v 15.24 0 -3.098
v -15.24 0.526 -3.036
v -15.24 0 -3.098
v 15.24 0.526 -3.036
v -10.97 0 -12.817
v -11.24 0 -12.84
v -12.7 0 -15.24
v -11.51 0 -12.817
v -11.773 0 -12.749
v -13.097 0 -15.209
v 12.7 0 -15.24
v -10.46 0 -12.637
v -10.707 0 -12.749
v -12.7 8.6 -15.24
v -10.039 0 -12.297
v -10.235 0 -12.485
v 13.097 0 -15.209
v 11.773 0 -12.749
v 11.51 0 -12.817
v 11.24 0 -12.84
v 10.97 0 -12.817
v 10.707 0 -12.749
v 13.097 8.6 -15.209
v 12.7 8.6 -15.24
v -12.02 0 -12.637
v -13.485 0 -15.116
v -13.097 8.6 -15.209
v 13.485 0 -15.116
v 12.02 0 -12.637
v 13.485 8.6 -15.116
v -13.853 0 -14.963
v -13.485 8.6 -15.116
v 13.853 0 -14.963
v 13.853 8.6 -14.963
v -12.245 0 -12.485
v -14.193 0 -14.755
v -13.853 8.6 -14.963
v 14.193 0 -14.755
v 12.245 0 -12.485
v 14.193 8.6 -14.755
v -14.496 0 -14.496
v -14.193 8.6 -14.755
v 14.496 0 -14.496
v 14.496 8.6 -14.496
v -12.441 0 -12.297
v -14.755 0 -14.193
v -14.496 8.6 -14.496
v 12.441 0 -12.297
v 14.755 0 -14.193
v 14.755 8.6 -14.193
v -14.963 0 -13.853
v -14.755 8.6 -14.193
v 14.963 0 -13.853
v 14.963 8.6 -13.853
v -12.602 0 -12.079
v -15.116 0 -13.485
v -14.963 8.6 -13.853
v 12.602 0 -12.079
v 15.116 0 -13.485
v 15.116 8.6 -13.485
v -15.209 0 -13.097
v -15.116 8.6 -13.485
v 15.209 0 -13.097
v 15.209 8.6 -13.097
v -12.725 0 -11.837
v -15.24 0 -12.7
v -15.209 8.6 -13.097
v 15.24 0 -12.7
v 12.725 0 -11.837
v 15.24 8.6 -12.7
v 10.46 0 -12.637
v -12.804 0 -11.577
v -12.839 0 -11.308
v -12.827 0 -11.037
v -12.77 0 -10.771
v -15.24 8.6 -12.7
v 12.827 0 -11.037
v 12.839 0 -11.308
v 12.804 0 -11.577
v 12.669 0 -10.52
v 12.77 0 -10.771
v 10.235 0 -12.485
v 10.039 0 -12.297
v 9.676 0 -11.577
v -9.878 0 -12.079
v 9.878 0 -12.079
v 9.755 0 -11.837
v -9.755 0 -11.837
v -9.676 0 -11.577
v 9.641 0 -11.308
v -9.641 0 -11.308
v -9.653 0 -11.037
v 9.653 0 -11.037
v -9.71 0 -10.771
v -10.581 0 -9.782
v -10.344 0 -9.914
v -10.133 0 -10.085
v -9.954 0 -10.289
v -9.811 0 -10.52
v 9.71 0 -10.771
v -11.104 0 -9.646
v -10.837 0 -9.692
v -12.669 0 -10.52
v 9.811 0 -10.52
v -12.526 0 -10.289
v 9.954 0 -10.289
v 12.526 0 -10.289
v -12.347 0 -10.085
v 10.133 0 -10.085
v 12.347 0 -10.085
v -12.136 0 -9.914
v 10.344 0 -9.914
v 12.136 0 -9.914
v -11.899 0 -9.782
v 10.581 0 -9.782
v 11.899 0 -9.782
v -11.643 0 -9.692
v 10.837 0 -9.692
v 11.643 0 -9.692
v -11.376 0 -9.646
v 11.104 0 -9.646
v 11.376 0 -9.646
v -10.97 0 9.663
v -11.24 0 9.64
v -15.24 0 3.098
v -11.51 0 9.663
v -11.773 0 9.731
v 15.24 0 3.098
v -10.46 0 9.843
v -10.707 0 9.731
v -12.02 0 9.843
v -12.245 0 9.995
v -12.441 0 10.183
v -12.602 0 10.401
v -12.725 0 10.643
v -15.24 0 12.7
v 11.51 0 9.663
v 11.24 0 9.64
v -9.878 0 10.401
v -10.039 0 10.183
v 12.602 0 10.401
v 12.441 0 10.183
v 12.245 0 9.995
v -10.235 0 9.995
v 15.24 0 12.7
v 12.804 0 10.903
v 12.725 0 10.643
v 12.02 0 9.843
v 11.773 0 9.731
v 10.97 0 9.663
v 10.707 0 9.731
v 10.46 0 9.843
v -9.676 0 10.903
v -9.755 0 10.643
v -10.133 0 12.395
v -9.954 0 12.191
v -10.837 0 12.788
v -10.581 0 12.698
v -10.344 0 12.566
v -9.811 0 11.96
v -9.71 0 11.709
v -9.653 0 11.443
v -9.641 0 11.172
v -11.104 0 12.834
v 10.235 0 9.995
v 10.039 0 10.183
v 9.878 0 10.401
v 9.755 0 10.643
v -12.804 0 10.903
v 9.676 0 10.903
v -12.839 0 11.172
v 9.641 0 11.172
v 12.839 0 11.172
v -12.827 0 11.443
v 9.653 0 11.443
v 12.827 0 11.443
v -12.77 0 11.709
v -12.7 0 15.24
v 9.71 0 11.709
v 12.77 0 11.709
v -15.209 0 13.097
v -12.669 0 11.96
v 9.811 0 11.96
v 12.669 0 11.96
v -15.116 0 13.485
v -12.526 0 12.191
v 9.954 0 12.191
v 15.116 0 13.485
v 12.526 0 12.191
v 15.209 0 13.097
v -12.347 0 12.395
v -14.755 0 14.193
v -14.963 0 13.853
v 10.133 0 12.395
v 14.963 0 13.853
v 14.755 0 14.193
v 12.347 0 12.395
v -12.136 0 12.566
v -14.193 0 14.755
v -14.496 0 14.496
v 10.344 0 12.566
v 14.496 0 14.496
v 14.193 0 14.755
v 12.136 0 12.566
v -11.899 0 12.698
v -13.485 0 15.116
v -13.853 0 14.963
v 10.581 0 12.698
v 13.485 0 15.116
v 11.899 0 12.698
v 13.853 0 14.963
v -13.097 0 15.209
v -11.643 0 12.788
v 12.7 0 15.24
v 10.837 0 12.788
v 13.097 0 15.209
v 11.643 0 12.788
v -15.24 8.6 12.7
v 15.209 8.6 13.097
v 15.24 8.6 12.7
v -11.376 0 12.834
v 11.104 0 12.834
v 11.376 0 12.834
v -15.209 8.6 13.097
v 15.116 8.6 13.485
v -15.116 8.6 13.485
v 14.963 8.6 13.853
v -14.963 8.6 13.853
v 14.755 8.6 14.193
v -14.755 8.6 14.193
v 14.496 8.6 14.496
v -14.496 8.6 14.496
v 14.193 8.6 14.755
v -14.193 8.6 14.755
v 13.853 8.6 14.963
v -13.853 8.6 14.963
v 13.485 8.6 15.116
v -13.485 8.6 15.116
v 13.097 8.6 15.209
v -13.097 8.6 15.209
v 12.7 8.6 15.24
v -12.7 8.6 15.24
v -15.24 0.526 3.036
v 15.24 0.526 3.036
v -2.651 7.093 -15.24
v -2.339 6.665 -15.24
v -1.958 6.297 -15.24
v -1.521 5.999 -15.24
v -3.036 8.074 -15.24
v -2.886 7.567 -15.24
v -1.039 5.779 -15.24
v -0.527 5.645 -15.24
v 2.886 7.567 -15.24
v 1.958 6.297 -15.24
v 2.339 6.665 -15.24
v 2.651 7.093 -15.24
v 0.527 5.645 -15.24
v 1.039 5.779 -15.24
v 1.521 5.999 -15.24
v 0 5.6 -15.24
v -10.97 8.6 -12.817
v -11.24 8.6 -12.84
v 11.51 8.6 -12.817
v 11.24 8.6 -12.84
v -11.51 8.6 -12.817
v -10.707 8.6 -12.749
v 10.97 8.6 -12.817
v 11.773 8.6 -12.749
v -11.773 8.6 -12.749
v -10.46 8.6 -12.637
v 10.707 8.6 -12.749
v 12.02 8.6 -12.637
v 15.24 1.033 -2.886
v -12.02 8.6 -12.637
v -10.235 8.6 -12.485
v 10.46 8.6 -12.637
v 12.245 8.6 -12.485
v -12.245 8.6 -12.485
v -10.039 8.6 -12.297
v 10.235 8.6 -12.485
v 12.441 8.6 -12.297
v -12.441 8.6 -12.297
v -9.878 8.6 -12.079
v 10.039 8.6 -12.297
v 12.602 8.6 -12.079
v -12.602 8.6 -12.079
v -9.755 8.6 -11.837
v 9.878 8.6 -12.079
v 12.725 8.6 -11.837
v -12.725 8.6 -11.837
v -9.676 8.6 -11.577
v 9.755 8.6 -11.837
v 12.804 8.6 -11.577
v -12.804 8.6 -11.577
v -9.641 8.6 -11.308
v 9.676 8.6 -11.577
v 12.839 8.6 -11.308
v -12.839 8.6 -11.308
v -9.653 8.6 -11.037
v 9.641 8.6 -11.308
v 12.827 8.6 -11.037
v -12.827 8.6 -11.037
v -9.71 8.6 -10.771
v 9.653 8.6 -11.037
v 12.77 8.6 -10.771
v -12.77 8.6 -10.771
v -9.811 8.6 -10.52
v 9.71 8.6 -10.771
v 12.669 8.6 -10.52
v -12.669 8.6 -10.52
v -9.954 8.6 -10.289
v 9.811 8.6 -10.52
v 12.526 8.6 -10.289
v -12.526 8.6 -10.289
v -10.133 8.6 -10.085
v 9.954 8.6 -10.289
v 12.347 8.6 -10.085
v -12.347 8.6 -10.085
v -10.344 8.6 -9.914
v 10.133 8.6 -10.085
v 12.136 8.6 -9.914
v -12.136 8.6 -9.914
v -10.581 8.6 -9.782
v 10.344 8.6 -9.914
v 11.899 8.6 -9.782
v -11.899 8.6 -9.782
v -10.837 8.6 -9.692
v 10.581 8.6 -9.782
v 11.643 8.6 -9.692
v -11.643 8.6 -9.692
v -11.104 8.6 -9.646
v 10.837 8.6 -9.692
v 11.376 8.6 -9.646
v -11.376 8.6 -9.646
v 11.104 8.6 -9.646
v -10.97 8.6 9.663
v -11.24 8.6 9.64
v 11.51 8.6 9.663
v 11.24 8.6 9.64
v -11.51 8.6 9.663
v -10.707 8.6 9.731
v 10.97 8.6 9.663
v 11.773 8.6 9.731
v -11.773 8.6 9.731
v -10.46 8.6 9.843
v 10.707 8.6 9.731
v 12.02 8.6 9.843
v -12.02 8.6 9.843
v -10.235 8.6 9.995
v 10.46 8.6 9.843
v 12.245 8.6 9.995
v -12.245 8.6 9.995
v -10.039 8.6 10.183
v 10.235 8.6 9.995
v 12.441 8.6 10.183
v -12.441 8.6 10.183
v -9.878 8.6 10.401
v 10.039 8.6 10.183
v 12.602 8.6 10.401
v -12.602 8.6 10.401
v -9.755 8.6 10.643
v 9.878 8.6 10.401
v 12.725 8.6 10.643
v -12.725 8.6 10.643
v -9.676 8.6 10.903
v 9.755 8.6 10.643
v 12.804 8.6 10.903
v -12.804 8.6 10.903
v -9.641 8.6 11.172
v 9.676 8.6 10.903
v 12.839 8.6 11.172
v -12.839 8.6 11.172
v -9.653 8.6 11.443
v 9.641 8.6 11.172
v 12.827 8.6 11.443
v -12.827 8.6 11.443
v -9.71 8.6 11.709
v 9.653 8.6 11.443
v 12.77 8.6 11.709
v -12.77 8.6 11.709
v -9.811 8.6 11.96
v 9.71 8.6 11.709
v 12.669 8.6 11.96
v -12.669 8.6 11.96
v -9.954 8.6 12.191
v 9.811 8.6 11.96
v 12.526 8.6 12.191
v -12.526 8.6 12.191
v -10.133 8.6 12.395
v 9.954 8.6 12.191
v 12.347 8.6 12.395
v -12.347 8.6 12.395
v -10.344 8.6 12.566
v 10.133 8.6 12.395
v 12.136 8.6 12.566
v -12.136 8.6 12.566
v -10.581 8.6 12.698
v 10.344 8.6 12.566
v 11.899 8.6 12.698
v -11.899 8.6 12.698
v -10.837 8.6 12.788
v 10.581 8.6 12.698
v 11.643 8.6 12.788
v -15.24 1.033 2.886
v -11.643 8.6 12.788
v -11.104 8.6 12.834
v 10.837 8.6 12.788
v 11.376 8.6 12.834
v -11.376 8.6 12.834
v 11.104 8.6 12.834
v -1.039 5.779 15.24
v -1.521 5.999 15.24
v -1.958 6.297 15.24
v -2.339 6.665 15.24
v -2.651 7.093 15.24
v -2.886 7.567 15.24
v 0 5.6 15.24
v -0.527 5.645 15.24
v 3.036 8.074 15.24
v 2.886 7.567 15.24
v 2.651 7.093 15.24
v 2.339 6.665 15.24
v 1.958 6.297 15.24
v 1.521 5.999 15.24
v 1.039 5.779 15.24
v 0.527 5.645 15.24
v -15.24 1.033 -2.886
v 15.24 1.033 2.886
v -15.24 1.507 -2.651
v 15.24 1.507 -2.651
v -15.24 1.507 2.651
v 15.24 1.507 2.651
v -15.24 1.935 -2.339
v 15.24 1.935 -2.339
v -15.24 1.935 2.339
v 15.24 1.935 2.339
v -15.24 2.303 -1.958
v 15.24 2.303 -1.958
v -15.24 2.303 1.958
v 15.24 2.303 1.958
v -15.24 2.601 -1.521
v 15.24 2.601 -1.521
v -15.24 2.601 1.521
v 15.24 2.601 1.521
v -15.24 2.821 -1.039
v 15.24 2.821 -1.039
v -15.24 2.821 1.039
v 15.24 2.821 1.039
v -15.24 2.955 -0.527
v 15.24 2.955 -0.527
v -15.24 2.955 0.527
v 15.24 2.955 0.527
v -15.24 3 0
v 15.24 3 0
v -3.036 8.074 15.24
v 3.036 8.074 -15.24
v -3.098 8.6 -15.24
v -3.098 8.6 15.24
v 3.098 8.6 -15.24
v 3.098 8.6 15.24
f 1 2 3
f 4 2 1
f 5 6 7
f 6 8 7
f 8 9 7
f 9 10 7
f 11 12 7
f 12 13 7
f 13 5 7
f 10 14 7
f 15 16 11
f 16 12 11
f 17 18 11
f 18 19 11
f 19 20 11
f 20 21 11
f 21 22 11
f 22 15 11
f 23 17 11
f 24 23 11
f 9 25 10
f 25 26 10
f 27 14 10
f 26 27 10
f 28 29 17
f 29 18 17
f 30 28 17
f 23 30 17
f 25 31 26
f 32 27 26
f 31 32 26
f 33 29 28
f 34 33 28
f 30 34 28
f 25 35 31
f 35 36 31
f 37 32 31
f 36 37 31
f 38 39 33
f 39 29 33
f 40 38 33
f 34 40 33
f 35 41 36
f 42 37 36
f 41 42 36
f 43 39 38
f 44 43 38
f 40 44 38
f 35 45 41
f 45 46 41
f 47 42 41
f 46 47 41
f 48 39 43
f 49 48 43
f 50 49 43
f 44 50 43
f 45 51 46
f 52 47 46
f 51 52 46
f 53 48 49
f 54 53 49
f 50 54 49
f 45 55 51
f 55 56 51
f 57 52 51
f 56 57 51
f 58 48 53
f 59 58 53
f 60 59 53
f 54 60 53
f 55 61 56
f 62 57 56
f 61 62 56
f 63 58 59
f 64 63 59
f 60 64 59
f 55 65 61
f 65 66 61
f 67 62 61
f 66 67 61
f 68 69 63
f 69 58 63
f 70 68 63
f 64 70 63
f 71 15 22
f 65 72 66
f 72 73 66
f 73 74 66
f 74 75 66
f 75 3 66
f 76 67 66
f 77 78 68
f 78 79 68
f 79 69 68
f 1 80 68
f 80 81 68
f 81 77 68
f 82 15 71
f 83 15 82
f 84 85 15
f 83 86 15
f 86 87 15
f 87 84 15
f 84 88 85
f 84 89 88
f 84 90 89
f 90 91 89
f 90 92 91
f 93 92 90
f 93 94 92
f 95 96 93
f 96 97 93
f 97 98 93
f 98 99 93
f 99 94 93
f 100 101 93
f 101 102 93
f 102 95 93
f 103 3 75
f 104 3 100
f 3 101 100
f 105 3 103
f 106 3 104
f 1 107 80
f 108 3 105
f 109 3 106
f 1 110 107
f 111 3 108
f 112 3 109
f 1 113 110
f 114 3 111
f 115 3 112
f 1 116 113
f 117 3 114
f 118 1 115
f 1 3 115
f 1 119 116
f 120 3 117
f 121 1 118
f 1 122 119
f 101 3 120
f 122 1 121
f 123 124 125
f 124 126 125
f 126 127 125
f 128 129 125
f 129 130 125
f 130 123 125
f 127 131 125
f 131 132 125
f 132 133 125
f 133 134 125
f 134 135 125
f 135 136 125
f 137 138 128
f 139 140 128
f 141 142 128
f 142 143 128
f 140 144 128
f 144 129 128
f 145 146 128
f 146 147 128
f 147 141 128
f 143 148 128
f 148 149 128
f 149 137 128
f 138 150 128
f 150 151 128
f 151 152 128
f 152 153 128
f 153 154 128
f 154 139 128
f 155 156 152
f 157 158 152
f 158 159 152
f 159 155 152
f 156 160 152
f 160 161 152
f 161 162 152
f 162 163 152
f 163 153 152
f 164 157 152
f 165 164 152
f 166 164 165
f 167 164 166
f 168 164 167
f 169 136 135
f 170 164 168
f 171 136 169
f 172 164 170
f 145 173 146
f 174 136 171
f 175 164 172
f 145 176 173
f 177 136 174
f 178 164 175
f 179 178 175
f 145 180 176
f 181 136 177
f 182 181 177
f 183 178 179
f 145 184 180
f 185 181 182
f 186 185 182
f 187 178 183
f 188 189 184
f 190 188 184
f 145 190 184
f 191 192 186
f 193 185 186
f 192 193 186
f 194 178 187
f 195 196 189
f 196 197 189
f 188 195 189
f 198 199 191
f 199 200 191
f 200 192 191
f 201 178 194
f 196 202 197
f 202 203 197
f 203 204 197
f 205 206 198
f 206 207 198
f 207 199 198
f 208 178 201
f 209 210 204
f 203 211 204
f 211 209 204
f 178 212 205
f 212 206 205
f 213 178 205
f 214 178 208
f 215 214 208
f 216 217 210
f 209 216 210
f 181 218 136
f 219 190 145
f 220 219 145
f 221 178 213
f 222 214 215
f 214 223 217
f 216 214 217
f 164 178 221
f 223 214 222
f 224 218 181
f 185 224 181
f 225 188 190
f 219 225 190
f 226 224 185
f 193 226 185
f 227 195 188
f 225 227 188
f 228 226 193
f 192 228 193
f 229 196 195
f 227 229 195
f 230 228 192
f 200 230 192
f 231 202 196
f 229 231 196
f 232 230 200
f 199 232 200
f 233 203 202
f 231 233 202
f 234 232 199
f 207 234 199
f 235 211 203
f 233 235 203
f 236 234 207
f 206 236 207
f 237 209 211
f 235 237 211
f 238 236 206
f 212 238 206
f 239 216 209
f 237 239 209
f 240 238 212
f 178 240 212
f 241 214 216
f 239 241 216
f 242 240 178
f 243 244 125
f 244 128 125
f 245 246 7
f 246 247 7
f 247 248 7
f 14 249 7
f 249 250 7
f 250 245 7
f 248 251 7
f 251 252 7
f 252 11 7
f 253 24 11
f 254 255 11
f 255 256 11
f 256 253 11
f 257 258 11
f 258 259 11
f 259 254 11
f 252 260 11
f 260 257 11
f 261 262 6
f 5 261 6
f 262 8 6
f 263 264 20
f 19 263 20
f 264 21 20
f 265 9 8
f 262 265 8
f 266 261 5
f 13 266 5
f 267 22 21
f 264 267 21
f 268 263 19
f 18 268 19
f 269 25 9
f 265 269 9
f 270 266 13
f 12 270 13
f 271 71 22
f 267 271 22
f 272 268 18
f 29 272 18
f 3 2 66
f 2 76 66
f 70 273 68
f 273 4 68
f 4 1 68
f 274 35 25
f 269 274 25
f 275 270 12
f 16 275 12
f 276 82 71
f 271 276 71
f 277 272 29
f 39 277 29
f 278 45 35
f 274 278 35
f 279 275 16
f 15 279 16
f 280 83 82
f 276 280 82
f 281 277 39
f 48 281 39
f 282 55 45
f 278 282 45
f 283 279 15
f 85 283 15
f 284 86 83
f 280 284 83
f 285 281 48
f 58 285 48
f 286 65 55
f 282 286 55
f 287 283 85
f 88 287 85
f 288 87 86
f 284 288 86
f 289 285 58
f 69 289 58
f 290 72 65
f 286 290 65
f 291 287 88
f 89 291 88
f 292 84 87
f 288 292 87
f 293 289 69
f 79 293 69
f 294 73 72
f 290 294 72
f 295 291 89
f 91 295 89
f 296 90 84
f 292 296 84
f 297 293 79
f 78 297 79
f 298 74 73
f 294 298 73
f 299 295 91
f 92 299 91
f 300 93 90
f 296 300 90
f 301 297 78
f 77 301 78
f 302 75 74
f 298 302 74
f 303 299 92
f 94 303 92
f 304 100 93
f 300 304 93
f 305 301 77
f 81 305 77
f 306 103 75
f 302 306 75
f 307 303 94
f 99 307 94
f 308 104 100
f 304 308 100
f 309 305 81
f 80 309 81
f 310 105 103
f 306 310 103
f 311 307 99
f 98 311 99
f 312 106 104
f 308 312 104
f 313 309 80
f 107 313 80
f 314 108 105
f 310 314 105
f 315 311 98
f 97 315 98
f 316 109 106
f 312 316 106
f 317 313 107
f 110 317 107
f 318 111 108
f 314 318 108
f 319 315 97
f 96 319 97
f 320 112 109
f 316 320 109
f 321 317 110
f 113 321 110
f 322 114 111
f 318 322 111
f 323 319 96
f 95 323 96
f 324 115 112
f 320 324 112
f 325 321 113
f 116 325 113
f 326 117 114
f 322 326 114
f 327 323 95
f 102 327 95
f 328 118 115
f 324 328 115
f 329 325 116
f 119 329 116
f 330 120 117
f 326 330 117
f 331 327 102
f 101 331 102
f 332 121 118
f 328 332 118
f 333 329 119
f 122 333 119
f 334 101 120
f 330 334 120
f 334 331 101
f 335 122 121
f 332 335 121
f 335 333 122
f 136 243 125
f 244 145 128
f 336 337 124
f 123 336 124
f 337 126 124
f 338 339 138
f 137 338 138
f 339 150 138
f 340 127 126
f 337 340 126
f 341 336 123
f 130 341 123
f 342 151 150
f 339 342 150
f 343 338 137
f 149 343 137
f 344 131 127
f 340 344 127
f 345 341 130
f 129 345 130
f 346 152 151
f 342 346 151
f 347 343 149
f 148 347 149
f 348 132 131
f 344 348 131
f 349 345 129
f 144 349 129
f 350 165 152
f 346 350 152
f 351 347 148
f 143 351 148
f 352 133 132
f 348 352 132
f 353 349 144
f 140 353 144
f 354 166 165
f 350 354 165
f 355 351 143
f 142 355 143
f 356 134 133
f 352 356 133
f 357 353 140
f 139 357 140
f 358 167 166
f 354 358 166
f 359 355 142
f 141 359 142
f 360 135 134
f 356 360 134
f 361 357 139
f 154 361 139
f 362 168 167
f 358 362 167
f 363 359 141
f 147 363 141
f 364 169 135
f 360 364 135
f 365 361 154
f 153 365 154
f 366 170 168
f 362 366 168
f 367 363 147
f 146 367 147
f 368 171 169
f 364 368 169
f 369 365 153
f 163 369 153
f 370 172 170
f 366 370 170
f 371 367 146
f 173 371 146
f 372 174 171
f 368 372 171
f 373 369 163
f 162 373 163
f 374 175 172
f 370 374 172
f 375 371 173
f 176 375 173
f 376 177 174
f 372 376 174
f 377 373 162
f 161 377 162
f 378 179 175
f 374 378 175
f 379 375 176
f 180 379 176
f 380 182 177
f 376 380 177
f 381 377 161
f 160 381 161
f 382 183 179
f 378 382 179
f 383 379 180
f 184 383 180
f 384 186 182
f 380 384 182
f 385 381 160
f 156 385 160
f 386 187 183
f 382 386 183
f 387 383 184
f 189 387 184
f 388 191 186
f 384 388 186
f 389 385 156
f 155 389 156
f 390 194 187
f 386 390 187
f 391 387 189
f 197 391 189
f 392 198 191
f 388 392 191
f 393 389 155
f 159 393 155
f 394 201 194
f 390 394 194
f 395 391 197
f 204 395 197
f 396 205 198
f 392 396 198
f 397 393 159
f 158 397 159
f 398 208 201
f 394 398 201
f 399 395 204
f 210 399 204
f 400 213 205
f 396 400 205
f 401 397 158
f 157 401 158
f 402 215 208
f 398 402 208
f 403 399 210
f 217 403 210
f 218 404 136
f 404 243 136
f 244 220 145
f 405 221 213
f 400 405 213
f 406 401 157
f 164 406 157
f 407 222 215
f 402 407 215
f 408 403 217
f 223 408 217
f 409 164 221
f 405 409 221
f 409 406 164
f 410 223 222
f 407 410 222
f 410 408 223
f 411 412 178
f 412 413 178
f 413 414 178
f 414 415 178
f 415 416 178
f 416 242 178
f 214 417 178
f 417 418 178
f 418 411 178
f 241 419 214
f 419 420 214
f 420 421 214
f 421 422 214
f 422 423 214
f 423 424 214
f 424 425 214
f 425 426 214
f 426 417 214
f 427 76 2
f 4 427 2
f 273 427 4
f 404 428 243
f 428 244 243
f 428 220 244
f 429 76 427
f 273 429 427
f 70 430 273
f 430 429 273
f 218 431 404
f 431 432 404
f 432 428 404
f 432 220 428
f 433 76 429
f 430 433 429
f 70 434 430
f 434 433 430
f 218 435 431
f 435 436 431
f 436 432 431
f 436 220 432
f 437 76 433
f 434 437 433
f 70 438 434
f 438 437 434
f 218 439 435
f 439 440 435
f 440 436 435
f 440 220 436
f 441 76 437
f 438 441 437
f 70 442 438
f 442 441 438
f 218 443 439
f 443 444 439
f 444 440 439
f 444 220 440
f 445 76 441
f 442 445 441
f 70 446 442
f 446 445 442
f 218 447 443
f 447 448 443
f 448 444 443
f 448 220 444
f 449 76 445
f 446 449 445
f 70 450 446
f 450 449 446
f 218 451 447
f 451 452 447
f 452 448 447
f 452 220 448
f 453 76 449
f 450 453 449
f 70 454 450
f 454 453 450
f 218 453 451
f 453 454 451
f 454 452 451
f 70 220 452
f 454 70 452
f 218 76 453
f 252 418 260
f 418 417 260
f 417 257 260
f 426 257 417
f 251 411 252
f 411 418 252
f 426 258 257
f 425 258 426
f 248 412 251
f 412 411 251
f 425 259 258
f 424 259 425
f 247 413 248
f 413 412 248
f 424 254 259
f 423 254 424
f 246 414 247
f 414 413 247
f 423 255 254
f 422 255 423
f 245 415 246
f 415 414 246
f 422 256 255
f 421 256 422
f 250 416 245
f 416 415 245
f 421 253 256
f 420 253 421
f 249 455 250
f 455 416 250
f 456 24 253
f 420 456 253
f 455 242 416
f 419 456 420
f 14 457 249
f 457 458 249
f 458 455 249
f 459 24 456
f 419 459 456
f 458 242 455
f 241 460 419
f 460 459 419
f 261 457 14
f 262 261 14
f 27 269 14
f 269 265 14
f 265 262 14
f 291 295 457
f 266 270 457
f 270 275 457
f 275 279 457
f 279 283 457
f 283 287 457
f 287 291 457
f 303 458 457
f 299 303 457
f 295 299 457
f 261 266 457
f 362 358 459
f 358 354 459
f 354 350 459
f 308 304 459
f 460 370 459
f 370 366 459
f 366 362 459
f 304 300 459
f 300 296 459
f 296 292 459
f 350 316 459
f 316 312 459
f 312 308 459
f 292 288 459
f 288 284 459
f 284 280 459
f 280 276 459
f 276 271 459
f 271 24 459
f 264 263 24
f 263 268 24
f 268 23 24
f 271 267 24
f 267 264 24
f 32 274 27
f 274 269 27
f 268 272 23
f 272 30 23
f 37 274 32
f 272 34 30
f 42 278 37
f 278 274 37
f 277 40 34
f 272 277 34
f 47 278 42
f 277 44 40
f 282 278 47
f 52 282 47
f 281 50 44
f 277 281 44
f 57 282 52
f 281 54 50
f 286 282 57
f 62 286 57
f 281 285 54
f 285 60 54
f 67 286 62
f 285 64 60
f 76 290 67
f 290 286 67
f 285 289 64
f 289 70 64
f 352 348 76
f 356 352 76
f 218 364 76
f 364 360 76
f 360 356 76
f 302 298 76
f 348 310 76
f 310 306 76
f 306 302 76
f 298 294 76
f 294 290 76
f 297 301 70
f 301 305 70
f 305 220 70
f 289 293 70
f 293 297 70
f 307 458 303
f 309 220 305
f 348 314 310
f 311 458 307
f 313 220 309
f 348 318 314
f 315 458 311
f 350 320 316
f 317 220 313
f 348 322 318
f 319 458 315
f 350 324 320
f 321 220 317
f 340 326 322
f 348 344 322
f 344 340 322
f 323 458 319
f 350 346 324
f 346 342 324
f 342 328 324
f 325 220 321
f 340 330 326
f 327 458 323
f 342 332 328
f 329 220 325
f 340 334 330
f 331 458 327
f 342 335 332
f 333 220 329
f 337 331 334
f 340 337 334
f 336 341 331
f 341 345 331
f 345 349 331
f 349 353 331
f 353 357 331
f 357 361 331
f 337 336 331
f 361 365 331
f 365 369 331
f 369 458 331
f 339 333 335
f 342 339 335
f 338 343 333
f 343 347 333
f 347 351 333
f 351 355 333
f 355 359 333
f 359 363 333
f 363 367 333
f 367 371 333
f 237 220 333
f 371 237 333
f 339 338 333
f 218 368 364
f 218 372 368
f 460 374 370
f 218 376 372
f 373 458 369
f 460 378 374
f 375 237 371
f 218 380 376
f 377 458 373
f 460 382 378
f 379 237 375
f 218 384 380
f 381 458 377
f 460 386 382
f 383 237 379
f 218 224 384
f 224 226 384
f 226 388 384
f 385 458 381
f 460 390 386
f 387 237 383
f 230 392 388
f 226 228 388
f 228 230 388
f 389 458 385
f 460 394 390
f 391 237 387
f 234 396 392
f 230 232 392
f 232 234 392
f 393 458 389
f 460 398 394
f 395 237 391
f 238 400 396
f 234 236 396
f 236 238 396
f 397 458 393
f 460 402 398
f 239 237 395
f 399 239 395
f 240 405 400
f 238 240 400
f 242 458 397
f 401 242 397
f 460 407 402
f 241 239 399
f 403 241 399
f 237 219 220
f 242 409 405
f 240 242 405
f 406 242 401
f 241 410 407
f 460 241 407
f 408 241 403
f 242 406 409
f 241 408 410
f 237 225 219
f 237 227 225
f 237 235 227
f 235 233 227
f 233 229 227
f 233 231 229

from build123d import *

# Parameters (mm, degrees)
SKETCH_2_W          = 30.48
SKETCH_2_H          = 30.48
EXTRUDE_1_DEPTH     = 8.6
SKETCH_3_R          = 3.1
CUT_EXTRUDE_1_DEPTH = 30.48
SKETCH_4_R          = 3.1
CUT_EXTRUDE_2_DEPTH = 30.48
SKETCH_5_R          = 1.6
CUT_EXTRUDE_3_DEPTH = 9.6
FILLET_2_R          = 2.54


with BuildPart() as part:
    # 草图2 → 凸台-拉伸1 (new body)
    with BuildSketch(Plane(origin=(0, 0, 0), x_dir=(1, 0, 0), z_dir=(0, 1, 0))):
        Rectangle(SKETCH_2_W, SKETCH_2_H)
    extrude(amount=EXTRUDE_1_DEPTH)

    # 草图3 → 切除-拉伸1 (cut)
    with BuildSketch(Plane.XY.offset(15.24)):
        with Locations((0, 8.7)):
            Circle(SKETCH_3_R)
    extrude(amount=-CUT_EXTRUDE_1_DEPTH, mode=Mode.SUBTRACT)

    # 草图4 → 切除-拉伸2 (cut)
    with BuildSketch(Plane(origin=(15.24, 0, 0), x_dir=(0, 0, -1), z_dir=(1, 0, 0))):
        with Locations((0, -0.1)):
            Circle(SKETCH_4_R)
    extrude(amount=-CUT_EXTRUDE_2_DEPTH, mode=Mode.SUBTRACT)

    # 草图5 → 切除-拉伸3 (cut, through all)
    with BuildSketch(Plane.XZ):
        with Locations((-11.24, 11.24)):
            Circle(SKETCH_5_R)
        with Locations((11.24, 11.24)):
            Circle(SKETCH_5_R)
        with Locations((11.24, -11.24)):
            Circle(SKETCH_5_R)
        with Locations((-11.24, -11.24)):
            Circle(SKETCH_5_R)
    extrude(amount=-CUT_EXTRUDE_3_DEPTH, mode=Mode.SUBTRACT)

    # 圆角2
    fillet_2_edges = [part.edges().sort_by_distance(p)[0] for p in [
        (15.24, 4.3, 15.24),
        (-15.24, 4.3, 15.24),
        (-15.24, 4.3, -15.24),
        (15.24, 4.3, -15.24),
    ]]
    fillet(fillet_2_edges, radius=FILLET_2_R)


solid = part.part
